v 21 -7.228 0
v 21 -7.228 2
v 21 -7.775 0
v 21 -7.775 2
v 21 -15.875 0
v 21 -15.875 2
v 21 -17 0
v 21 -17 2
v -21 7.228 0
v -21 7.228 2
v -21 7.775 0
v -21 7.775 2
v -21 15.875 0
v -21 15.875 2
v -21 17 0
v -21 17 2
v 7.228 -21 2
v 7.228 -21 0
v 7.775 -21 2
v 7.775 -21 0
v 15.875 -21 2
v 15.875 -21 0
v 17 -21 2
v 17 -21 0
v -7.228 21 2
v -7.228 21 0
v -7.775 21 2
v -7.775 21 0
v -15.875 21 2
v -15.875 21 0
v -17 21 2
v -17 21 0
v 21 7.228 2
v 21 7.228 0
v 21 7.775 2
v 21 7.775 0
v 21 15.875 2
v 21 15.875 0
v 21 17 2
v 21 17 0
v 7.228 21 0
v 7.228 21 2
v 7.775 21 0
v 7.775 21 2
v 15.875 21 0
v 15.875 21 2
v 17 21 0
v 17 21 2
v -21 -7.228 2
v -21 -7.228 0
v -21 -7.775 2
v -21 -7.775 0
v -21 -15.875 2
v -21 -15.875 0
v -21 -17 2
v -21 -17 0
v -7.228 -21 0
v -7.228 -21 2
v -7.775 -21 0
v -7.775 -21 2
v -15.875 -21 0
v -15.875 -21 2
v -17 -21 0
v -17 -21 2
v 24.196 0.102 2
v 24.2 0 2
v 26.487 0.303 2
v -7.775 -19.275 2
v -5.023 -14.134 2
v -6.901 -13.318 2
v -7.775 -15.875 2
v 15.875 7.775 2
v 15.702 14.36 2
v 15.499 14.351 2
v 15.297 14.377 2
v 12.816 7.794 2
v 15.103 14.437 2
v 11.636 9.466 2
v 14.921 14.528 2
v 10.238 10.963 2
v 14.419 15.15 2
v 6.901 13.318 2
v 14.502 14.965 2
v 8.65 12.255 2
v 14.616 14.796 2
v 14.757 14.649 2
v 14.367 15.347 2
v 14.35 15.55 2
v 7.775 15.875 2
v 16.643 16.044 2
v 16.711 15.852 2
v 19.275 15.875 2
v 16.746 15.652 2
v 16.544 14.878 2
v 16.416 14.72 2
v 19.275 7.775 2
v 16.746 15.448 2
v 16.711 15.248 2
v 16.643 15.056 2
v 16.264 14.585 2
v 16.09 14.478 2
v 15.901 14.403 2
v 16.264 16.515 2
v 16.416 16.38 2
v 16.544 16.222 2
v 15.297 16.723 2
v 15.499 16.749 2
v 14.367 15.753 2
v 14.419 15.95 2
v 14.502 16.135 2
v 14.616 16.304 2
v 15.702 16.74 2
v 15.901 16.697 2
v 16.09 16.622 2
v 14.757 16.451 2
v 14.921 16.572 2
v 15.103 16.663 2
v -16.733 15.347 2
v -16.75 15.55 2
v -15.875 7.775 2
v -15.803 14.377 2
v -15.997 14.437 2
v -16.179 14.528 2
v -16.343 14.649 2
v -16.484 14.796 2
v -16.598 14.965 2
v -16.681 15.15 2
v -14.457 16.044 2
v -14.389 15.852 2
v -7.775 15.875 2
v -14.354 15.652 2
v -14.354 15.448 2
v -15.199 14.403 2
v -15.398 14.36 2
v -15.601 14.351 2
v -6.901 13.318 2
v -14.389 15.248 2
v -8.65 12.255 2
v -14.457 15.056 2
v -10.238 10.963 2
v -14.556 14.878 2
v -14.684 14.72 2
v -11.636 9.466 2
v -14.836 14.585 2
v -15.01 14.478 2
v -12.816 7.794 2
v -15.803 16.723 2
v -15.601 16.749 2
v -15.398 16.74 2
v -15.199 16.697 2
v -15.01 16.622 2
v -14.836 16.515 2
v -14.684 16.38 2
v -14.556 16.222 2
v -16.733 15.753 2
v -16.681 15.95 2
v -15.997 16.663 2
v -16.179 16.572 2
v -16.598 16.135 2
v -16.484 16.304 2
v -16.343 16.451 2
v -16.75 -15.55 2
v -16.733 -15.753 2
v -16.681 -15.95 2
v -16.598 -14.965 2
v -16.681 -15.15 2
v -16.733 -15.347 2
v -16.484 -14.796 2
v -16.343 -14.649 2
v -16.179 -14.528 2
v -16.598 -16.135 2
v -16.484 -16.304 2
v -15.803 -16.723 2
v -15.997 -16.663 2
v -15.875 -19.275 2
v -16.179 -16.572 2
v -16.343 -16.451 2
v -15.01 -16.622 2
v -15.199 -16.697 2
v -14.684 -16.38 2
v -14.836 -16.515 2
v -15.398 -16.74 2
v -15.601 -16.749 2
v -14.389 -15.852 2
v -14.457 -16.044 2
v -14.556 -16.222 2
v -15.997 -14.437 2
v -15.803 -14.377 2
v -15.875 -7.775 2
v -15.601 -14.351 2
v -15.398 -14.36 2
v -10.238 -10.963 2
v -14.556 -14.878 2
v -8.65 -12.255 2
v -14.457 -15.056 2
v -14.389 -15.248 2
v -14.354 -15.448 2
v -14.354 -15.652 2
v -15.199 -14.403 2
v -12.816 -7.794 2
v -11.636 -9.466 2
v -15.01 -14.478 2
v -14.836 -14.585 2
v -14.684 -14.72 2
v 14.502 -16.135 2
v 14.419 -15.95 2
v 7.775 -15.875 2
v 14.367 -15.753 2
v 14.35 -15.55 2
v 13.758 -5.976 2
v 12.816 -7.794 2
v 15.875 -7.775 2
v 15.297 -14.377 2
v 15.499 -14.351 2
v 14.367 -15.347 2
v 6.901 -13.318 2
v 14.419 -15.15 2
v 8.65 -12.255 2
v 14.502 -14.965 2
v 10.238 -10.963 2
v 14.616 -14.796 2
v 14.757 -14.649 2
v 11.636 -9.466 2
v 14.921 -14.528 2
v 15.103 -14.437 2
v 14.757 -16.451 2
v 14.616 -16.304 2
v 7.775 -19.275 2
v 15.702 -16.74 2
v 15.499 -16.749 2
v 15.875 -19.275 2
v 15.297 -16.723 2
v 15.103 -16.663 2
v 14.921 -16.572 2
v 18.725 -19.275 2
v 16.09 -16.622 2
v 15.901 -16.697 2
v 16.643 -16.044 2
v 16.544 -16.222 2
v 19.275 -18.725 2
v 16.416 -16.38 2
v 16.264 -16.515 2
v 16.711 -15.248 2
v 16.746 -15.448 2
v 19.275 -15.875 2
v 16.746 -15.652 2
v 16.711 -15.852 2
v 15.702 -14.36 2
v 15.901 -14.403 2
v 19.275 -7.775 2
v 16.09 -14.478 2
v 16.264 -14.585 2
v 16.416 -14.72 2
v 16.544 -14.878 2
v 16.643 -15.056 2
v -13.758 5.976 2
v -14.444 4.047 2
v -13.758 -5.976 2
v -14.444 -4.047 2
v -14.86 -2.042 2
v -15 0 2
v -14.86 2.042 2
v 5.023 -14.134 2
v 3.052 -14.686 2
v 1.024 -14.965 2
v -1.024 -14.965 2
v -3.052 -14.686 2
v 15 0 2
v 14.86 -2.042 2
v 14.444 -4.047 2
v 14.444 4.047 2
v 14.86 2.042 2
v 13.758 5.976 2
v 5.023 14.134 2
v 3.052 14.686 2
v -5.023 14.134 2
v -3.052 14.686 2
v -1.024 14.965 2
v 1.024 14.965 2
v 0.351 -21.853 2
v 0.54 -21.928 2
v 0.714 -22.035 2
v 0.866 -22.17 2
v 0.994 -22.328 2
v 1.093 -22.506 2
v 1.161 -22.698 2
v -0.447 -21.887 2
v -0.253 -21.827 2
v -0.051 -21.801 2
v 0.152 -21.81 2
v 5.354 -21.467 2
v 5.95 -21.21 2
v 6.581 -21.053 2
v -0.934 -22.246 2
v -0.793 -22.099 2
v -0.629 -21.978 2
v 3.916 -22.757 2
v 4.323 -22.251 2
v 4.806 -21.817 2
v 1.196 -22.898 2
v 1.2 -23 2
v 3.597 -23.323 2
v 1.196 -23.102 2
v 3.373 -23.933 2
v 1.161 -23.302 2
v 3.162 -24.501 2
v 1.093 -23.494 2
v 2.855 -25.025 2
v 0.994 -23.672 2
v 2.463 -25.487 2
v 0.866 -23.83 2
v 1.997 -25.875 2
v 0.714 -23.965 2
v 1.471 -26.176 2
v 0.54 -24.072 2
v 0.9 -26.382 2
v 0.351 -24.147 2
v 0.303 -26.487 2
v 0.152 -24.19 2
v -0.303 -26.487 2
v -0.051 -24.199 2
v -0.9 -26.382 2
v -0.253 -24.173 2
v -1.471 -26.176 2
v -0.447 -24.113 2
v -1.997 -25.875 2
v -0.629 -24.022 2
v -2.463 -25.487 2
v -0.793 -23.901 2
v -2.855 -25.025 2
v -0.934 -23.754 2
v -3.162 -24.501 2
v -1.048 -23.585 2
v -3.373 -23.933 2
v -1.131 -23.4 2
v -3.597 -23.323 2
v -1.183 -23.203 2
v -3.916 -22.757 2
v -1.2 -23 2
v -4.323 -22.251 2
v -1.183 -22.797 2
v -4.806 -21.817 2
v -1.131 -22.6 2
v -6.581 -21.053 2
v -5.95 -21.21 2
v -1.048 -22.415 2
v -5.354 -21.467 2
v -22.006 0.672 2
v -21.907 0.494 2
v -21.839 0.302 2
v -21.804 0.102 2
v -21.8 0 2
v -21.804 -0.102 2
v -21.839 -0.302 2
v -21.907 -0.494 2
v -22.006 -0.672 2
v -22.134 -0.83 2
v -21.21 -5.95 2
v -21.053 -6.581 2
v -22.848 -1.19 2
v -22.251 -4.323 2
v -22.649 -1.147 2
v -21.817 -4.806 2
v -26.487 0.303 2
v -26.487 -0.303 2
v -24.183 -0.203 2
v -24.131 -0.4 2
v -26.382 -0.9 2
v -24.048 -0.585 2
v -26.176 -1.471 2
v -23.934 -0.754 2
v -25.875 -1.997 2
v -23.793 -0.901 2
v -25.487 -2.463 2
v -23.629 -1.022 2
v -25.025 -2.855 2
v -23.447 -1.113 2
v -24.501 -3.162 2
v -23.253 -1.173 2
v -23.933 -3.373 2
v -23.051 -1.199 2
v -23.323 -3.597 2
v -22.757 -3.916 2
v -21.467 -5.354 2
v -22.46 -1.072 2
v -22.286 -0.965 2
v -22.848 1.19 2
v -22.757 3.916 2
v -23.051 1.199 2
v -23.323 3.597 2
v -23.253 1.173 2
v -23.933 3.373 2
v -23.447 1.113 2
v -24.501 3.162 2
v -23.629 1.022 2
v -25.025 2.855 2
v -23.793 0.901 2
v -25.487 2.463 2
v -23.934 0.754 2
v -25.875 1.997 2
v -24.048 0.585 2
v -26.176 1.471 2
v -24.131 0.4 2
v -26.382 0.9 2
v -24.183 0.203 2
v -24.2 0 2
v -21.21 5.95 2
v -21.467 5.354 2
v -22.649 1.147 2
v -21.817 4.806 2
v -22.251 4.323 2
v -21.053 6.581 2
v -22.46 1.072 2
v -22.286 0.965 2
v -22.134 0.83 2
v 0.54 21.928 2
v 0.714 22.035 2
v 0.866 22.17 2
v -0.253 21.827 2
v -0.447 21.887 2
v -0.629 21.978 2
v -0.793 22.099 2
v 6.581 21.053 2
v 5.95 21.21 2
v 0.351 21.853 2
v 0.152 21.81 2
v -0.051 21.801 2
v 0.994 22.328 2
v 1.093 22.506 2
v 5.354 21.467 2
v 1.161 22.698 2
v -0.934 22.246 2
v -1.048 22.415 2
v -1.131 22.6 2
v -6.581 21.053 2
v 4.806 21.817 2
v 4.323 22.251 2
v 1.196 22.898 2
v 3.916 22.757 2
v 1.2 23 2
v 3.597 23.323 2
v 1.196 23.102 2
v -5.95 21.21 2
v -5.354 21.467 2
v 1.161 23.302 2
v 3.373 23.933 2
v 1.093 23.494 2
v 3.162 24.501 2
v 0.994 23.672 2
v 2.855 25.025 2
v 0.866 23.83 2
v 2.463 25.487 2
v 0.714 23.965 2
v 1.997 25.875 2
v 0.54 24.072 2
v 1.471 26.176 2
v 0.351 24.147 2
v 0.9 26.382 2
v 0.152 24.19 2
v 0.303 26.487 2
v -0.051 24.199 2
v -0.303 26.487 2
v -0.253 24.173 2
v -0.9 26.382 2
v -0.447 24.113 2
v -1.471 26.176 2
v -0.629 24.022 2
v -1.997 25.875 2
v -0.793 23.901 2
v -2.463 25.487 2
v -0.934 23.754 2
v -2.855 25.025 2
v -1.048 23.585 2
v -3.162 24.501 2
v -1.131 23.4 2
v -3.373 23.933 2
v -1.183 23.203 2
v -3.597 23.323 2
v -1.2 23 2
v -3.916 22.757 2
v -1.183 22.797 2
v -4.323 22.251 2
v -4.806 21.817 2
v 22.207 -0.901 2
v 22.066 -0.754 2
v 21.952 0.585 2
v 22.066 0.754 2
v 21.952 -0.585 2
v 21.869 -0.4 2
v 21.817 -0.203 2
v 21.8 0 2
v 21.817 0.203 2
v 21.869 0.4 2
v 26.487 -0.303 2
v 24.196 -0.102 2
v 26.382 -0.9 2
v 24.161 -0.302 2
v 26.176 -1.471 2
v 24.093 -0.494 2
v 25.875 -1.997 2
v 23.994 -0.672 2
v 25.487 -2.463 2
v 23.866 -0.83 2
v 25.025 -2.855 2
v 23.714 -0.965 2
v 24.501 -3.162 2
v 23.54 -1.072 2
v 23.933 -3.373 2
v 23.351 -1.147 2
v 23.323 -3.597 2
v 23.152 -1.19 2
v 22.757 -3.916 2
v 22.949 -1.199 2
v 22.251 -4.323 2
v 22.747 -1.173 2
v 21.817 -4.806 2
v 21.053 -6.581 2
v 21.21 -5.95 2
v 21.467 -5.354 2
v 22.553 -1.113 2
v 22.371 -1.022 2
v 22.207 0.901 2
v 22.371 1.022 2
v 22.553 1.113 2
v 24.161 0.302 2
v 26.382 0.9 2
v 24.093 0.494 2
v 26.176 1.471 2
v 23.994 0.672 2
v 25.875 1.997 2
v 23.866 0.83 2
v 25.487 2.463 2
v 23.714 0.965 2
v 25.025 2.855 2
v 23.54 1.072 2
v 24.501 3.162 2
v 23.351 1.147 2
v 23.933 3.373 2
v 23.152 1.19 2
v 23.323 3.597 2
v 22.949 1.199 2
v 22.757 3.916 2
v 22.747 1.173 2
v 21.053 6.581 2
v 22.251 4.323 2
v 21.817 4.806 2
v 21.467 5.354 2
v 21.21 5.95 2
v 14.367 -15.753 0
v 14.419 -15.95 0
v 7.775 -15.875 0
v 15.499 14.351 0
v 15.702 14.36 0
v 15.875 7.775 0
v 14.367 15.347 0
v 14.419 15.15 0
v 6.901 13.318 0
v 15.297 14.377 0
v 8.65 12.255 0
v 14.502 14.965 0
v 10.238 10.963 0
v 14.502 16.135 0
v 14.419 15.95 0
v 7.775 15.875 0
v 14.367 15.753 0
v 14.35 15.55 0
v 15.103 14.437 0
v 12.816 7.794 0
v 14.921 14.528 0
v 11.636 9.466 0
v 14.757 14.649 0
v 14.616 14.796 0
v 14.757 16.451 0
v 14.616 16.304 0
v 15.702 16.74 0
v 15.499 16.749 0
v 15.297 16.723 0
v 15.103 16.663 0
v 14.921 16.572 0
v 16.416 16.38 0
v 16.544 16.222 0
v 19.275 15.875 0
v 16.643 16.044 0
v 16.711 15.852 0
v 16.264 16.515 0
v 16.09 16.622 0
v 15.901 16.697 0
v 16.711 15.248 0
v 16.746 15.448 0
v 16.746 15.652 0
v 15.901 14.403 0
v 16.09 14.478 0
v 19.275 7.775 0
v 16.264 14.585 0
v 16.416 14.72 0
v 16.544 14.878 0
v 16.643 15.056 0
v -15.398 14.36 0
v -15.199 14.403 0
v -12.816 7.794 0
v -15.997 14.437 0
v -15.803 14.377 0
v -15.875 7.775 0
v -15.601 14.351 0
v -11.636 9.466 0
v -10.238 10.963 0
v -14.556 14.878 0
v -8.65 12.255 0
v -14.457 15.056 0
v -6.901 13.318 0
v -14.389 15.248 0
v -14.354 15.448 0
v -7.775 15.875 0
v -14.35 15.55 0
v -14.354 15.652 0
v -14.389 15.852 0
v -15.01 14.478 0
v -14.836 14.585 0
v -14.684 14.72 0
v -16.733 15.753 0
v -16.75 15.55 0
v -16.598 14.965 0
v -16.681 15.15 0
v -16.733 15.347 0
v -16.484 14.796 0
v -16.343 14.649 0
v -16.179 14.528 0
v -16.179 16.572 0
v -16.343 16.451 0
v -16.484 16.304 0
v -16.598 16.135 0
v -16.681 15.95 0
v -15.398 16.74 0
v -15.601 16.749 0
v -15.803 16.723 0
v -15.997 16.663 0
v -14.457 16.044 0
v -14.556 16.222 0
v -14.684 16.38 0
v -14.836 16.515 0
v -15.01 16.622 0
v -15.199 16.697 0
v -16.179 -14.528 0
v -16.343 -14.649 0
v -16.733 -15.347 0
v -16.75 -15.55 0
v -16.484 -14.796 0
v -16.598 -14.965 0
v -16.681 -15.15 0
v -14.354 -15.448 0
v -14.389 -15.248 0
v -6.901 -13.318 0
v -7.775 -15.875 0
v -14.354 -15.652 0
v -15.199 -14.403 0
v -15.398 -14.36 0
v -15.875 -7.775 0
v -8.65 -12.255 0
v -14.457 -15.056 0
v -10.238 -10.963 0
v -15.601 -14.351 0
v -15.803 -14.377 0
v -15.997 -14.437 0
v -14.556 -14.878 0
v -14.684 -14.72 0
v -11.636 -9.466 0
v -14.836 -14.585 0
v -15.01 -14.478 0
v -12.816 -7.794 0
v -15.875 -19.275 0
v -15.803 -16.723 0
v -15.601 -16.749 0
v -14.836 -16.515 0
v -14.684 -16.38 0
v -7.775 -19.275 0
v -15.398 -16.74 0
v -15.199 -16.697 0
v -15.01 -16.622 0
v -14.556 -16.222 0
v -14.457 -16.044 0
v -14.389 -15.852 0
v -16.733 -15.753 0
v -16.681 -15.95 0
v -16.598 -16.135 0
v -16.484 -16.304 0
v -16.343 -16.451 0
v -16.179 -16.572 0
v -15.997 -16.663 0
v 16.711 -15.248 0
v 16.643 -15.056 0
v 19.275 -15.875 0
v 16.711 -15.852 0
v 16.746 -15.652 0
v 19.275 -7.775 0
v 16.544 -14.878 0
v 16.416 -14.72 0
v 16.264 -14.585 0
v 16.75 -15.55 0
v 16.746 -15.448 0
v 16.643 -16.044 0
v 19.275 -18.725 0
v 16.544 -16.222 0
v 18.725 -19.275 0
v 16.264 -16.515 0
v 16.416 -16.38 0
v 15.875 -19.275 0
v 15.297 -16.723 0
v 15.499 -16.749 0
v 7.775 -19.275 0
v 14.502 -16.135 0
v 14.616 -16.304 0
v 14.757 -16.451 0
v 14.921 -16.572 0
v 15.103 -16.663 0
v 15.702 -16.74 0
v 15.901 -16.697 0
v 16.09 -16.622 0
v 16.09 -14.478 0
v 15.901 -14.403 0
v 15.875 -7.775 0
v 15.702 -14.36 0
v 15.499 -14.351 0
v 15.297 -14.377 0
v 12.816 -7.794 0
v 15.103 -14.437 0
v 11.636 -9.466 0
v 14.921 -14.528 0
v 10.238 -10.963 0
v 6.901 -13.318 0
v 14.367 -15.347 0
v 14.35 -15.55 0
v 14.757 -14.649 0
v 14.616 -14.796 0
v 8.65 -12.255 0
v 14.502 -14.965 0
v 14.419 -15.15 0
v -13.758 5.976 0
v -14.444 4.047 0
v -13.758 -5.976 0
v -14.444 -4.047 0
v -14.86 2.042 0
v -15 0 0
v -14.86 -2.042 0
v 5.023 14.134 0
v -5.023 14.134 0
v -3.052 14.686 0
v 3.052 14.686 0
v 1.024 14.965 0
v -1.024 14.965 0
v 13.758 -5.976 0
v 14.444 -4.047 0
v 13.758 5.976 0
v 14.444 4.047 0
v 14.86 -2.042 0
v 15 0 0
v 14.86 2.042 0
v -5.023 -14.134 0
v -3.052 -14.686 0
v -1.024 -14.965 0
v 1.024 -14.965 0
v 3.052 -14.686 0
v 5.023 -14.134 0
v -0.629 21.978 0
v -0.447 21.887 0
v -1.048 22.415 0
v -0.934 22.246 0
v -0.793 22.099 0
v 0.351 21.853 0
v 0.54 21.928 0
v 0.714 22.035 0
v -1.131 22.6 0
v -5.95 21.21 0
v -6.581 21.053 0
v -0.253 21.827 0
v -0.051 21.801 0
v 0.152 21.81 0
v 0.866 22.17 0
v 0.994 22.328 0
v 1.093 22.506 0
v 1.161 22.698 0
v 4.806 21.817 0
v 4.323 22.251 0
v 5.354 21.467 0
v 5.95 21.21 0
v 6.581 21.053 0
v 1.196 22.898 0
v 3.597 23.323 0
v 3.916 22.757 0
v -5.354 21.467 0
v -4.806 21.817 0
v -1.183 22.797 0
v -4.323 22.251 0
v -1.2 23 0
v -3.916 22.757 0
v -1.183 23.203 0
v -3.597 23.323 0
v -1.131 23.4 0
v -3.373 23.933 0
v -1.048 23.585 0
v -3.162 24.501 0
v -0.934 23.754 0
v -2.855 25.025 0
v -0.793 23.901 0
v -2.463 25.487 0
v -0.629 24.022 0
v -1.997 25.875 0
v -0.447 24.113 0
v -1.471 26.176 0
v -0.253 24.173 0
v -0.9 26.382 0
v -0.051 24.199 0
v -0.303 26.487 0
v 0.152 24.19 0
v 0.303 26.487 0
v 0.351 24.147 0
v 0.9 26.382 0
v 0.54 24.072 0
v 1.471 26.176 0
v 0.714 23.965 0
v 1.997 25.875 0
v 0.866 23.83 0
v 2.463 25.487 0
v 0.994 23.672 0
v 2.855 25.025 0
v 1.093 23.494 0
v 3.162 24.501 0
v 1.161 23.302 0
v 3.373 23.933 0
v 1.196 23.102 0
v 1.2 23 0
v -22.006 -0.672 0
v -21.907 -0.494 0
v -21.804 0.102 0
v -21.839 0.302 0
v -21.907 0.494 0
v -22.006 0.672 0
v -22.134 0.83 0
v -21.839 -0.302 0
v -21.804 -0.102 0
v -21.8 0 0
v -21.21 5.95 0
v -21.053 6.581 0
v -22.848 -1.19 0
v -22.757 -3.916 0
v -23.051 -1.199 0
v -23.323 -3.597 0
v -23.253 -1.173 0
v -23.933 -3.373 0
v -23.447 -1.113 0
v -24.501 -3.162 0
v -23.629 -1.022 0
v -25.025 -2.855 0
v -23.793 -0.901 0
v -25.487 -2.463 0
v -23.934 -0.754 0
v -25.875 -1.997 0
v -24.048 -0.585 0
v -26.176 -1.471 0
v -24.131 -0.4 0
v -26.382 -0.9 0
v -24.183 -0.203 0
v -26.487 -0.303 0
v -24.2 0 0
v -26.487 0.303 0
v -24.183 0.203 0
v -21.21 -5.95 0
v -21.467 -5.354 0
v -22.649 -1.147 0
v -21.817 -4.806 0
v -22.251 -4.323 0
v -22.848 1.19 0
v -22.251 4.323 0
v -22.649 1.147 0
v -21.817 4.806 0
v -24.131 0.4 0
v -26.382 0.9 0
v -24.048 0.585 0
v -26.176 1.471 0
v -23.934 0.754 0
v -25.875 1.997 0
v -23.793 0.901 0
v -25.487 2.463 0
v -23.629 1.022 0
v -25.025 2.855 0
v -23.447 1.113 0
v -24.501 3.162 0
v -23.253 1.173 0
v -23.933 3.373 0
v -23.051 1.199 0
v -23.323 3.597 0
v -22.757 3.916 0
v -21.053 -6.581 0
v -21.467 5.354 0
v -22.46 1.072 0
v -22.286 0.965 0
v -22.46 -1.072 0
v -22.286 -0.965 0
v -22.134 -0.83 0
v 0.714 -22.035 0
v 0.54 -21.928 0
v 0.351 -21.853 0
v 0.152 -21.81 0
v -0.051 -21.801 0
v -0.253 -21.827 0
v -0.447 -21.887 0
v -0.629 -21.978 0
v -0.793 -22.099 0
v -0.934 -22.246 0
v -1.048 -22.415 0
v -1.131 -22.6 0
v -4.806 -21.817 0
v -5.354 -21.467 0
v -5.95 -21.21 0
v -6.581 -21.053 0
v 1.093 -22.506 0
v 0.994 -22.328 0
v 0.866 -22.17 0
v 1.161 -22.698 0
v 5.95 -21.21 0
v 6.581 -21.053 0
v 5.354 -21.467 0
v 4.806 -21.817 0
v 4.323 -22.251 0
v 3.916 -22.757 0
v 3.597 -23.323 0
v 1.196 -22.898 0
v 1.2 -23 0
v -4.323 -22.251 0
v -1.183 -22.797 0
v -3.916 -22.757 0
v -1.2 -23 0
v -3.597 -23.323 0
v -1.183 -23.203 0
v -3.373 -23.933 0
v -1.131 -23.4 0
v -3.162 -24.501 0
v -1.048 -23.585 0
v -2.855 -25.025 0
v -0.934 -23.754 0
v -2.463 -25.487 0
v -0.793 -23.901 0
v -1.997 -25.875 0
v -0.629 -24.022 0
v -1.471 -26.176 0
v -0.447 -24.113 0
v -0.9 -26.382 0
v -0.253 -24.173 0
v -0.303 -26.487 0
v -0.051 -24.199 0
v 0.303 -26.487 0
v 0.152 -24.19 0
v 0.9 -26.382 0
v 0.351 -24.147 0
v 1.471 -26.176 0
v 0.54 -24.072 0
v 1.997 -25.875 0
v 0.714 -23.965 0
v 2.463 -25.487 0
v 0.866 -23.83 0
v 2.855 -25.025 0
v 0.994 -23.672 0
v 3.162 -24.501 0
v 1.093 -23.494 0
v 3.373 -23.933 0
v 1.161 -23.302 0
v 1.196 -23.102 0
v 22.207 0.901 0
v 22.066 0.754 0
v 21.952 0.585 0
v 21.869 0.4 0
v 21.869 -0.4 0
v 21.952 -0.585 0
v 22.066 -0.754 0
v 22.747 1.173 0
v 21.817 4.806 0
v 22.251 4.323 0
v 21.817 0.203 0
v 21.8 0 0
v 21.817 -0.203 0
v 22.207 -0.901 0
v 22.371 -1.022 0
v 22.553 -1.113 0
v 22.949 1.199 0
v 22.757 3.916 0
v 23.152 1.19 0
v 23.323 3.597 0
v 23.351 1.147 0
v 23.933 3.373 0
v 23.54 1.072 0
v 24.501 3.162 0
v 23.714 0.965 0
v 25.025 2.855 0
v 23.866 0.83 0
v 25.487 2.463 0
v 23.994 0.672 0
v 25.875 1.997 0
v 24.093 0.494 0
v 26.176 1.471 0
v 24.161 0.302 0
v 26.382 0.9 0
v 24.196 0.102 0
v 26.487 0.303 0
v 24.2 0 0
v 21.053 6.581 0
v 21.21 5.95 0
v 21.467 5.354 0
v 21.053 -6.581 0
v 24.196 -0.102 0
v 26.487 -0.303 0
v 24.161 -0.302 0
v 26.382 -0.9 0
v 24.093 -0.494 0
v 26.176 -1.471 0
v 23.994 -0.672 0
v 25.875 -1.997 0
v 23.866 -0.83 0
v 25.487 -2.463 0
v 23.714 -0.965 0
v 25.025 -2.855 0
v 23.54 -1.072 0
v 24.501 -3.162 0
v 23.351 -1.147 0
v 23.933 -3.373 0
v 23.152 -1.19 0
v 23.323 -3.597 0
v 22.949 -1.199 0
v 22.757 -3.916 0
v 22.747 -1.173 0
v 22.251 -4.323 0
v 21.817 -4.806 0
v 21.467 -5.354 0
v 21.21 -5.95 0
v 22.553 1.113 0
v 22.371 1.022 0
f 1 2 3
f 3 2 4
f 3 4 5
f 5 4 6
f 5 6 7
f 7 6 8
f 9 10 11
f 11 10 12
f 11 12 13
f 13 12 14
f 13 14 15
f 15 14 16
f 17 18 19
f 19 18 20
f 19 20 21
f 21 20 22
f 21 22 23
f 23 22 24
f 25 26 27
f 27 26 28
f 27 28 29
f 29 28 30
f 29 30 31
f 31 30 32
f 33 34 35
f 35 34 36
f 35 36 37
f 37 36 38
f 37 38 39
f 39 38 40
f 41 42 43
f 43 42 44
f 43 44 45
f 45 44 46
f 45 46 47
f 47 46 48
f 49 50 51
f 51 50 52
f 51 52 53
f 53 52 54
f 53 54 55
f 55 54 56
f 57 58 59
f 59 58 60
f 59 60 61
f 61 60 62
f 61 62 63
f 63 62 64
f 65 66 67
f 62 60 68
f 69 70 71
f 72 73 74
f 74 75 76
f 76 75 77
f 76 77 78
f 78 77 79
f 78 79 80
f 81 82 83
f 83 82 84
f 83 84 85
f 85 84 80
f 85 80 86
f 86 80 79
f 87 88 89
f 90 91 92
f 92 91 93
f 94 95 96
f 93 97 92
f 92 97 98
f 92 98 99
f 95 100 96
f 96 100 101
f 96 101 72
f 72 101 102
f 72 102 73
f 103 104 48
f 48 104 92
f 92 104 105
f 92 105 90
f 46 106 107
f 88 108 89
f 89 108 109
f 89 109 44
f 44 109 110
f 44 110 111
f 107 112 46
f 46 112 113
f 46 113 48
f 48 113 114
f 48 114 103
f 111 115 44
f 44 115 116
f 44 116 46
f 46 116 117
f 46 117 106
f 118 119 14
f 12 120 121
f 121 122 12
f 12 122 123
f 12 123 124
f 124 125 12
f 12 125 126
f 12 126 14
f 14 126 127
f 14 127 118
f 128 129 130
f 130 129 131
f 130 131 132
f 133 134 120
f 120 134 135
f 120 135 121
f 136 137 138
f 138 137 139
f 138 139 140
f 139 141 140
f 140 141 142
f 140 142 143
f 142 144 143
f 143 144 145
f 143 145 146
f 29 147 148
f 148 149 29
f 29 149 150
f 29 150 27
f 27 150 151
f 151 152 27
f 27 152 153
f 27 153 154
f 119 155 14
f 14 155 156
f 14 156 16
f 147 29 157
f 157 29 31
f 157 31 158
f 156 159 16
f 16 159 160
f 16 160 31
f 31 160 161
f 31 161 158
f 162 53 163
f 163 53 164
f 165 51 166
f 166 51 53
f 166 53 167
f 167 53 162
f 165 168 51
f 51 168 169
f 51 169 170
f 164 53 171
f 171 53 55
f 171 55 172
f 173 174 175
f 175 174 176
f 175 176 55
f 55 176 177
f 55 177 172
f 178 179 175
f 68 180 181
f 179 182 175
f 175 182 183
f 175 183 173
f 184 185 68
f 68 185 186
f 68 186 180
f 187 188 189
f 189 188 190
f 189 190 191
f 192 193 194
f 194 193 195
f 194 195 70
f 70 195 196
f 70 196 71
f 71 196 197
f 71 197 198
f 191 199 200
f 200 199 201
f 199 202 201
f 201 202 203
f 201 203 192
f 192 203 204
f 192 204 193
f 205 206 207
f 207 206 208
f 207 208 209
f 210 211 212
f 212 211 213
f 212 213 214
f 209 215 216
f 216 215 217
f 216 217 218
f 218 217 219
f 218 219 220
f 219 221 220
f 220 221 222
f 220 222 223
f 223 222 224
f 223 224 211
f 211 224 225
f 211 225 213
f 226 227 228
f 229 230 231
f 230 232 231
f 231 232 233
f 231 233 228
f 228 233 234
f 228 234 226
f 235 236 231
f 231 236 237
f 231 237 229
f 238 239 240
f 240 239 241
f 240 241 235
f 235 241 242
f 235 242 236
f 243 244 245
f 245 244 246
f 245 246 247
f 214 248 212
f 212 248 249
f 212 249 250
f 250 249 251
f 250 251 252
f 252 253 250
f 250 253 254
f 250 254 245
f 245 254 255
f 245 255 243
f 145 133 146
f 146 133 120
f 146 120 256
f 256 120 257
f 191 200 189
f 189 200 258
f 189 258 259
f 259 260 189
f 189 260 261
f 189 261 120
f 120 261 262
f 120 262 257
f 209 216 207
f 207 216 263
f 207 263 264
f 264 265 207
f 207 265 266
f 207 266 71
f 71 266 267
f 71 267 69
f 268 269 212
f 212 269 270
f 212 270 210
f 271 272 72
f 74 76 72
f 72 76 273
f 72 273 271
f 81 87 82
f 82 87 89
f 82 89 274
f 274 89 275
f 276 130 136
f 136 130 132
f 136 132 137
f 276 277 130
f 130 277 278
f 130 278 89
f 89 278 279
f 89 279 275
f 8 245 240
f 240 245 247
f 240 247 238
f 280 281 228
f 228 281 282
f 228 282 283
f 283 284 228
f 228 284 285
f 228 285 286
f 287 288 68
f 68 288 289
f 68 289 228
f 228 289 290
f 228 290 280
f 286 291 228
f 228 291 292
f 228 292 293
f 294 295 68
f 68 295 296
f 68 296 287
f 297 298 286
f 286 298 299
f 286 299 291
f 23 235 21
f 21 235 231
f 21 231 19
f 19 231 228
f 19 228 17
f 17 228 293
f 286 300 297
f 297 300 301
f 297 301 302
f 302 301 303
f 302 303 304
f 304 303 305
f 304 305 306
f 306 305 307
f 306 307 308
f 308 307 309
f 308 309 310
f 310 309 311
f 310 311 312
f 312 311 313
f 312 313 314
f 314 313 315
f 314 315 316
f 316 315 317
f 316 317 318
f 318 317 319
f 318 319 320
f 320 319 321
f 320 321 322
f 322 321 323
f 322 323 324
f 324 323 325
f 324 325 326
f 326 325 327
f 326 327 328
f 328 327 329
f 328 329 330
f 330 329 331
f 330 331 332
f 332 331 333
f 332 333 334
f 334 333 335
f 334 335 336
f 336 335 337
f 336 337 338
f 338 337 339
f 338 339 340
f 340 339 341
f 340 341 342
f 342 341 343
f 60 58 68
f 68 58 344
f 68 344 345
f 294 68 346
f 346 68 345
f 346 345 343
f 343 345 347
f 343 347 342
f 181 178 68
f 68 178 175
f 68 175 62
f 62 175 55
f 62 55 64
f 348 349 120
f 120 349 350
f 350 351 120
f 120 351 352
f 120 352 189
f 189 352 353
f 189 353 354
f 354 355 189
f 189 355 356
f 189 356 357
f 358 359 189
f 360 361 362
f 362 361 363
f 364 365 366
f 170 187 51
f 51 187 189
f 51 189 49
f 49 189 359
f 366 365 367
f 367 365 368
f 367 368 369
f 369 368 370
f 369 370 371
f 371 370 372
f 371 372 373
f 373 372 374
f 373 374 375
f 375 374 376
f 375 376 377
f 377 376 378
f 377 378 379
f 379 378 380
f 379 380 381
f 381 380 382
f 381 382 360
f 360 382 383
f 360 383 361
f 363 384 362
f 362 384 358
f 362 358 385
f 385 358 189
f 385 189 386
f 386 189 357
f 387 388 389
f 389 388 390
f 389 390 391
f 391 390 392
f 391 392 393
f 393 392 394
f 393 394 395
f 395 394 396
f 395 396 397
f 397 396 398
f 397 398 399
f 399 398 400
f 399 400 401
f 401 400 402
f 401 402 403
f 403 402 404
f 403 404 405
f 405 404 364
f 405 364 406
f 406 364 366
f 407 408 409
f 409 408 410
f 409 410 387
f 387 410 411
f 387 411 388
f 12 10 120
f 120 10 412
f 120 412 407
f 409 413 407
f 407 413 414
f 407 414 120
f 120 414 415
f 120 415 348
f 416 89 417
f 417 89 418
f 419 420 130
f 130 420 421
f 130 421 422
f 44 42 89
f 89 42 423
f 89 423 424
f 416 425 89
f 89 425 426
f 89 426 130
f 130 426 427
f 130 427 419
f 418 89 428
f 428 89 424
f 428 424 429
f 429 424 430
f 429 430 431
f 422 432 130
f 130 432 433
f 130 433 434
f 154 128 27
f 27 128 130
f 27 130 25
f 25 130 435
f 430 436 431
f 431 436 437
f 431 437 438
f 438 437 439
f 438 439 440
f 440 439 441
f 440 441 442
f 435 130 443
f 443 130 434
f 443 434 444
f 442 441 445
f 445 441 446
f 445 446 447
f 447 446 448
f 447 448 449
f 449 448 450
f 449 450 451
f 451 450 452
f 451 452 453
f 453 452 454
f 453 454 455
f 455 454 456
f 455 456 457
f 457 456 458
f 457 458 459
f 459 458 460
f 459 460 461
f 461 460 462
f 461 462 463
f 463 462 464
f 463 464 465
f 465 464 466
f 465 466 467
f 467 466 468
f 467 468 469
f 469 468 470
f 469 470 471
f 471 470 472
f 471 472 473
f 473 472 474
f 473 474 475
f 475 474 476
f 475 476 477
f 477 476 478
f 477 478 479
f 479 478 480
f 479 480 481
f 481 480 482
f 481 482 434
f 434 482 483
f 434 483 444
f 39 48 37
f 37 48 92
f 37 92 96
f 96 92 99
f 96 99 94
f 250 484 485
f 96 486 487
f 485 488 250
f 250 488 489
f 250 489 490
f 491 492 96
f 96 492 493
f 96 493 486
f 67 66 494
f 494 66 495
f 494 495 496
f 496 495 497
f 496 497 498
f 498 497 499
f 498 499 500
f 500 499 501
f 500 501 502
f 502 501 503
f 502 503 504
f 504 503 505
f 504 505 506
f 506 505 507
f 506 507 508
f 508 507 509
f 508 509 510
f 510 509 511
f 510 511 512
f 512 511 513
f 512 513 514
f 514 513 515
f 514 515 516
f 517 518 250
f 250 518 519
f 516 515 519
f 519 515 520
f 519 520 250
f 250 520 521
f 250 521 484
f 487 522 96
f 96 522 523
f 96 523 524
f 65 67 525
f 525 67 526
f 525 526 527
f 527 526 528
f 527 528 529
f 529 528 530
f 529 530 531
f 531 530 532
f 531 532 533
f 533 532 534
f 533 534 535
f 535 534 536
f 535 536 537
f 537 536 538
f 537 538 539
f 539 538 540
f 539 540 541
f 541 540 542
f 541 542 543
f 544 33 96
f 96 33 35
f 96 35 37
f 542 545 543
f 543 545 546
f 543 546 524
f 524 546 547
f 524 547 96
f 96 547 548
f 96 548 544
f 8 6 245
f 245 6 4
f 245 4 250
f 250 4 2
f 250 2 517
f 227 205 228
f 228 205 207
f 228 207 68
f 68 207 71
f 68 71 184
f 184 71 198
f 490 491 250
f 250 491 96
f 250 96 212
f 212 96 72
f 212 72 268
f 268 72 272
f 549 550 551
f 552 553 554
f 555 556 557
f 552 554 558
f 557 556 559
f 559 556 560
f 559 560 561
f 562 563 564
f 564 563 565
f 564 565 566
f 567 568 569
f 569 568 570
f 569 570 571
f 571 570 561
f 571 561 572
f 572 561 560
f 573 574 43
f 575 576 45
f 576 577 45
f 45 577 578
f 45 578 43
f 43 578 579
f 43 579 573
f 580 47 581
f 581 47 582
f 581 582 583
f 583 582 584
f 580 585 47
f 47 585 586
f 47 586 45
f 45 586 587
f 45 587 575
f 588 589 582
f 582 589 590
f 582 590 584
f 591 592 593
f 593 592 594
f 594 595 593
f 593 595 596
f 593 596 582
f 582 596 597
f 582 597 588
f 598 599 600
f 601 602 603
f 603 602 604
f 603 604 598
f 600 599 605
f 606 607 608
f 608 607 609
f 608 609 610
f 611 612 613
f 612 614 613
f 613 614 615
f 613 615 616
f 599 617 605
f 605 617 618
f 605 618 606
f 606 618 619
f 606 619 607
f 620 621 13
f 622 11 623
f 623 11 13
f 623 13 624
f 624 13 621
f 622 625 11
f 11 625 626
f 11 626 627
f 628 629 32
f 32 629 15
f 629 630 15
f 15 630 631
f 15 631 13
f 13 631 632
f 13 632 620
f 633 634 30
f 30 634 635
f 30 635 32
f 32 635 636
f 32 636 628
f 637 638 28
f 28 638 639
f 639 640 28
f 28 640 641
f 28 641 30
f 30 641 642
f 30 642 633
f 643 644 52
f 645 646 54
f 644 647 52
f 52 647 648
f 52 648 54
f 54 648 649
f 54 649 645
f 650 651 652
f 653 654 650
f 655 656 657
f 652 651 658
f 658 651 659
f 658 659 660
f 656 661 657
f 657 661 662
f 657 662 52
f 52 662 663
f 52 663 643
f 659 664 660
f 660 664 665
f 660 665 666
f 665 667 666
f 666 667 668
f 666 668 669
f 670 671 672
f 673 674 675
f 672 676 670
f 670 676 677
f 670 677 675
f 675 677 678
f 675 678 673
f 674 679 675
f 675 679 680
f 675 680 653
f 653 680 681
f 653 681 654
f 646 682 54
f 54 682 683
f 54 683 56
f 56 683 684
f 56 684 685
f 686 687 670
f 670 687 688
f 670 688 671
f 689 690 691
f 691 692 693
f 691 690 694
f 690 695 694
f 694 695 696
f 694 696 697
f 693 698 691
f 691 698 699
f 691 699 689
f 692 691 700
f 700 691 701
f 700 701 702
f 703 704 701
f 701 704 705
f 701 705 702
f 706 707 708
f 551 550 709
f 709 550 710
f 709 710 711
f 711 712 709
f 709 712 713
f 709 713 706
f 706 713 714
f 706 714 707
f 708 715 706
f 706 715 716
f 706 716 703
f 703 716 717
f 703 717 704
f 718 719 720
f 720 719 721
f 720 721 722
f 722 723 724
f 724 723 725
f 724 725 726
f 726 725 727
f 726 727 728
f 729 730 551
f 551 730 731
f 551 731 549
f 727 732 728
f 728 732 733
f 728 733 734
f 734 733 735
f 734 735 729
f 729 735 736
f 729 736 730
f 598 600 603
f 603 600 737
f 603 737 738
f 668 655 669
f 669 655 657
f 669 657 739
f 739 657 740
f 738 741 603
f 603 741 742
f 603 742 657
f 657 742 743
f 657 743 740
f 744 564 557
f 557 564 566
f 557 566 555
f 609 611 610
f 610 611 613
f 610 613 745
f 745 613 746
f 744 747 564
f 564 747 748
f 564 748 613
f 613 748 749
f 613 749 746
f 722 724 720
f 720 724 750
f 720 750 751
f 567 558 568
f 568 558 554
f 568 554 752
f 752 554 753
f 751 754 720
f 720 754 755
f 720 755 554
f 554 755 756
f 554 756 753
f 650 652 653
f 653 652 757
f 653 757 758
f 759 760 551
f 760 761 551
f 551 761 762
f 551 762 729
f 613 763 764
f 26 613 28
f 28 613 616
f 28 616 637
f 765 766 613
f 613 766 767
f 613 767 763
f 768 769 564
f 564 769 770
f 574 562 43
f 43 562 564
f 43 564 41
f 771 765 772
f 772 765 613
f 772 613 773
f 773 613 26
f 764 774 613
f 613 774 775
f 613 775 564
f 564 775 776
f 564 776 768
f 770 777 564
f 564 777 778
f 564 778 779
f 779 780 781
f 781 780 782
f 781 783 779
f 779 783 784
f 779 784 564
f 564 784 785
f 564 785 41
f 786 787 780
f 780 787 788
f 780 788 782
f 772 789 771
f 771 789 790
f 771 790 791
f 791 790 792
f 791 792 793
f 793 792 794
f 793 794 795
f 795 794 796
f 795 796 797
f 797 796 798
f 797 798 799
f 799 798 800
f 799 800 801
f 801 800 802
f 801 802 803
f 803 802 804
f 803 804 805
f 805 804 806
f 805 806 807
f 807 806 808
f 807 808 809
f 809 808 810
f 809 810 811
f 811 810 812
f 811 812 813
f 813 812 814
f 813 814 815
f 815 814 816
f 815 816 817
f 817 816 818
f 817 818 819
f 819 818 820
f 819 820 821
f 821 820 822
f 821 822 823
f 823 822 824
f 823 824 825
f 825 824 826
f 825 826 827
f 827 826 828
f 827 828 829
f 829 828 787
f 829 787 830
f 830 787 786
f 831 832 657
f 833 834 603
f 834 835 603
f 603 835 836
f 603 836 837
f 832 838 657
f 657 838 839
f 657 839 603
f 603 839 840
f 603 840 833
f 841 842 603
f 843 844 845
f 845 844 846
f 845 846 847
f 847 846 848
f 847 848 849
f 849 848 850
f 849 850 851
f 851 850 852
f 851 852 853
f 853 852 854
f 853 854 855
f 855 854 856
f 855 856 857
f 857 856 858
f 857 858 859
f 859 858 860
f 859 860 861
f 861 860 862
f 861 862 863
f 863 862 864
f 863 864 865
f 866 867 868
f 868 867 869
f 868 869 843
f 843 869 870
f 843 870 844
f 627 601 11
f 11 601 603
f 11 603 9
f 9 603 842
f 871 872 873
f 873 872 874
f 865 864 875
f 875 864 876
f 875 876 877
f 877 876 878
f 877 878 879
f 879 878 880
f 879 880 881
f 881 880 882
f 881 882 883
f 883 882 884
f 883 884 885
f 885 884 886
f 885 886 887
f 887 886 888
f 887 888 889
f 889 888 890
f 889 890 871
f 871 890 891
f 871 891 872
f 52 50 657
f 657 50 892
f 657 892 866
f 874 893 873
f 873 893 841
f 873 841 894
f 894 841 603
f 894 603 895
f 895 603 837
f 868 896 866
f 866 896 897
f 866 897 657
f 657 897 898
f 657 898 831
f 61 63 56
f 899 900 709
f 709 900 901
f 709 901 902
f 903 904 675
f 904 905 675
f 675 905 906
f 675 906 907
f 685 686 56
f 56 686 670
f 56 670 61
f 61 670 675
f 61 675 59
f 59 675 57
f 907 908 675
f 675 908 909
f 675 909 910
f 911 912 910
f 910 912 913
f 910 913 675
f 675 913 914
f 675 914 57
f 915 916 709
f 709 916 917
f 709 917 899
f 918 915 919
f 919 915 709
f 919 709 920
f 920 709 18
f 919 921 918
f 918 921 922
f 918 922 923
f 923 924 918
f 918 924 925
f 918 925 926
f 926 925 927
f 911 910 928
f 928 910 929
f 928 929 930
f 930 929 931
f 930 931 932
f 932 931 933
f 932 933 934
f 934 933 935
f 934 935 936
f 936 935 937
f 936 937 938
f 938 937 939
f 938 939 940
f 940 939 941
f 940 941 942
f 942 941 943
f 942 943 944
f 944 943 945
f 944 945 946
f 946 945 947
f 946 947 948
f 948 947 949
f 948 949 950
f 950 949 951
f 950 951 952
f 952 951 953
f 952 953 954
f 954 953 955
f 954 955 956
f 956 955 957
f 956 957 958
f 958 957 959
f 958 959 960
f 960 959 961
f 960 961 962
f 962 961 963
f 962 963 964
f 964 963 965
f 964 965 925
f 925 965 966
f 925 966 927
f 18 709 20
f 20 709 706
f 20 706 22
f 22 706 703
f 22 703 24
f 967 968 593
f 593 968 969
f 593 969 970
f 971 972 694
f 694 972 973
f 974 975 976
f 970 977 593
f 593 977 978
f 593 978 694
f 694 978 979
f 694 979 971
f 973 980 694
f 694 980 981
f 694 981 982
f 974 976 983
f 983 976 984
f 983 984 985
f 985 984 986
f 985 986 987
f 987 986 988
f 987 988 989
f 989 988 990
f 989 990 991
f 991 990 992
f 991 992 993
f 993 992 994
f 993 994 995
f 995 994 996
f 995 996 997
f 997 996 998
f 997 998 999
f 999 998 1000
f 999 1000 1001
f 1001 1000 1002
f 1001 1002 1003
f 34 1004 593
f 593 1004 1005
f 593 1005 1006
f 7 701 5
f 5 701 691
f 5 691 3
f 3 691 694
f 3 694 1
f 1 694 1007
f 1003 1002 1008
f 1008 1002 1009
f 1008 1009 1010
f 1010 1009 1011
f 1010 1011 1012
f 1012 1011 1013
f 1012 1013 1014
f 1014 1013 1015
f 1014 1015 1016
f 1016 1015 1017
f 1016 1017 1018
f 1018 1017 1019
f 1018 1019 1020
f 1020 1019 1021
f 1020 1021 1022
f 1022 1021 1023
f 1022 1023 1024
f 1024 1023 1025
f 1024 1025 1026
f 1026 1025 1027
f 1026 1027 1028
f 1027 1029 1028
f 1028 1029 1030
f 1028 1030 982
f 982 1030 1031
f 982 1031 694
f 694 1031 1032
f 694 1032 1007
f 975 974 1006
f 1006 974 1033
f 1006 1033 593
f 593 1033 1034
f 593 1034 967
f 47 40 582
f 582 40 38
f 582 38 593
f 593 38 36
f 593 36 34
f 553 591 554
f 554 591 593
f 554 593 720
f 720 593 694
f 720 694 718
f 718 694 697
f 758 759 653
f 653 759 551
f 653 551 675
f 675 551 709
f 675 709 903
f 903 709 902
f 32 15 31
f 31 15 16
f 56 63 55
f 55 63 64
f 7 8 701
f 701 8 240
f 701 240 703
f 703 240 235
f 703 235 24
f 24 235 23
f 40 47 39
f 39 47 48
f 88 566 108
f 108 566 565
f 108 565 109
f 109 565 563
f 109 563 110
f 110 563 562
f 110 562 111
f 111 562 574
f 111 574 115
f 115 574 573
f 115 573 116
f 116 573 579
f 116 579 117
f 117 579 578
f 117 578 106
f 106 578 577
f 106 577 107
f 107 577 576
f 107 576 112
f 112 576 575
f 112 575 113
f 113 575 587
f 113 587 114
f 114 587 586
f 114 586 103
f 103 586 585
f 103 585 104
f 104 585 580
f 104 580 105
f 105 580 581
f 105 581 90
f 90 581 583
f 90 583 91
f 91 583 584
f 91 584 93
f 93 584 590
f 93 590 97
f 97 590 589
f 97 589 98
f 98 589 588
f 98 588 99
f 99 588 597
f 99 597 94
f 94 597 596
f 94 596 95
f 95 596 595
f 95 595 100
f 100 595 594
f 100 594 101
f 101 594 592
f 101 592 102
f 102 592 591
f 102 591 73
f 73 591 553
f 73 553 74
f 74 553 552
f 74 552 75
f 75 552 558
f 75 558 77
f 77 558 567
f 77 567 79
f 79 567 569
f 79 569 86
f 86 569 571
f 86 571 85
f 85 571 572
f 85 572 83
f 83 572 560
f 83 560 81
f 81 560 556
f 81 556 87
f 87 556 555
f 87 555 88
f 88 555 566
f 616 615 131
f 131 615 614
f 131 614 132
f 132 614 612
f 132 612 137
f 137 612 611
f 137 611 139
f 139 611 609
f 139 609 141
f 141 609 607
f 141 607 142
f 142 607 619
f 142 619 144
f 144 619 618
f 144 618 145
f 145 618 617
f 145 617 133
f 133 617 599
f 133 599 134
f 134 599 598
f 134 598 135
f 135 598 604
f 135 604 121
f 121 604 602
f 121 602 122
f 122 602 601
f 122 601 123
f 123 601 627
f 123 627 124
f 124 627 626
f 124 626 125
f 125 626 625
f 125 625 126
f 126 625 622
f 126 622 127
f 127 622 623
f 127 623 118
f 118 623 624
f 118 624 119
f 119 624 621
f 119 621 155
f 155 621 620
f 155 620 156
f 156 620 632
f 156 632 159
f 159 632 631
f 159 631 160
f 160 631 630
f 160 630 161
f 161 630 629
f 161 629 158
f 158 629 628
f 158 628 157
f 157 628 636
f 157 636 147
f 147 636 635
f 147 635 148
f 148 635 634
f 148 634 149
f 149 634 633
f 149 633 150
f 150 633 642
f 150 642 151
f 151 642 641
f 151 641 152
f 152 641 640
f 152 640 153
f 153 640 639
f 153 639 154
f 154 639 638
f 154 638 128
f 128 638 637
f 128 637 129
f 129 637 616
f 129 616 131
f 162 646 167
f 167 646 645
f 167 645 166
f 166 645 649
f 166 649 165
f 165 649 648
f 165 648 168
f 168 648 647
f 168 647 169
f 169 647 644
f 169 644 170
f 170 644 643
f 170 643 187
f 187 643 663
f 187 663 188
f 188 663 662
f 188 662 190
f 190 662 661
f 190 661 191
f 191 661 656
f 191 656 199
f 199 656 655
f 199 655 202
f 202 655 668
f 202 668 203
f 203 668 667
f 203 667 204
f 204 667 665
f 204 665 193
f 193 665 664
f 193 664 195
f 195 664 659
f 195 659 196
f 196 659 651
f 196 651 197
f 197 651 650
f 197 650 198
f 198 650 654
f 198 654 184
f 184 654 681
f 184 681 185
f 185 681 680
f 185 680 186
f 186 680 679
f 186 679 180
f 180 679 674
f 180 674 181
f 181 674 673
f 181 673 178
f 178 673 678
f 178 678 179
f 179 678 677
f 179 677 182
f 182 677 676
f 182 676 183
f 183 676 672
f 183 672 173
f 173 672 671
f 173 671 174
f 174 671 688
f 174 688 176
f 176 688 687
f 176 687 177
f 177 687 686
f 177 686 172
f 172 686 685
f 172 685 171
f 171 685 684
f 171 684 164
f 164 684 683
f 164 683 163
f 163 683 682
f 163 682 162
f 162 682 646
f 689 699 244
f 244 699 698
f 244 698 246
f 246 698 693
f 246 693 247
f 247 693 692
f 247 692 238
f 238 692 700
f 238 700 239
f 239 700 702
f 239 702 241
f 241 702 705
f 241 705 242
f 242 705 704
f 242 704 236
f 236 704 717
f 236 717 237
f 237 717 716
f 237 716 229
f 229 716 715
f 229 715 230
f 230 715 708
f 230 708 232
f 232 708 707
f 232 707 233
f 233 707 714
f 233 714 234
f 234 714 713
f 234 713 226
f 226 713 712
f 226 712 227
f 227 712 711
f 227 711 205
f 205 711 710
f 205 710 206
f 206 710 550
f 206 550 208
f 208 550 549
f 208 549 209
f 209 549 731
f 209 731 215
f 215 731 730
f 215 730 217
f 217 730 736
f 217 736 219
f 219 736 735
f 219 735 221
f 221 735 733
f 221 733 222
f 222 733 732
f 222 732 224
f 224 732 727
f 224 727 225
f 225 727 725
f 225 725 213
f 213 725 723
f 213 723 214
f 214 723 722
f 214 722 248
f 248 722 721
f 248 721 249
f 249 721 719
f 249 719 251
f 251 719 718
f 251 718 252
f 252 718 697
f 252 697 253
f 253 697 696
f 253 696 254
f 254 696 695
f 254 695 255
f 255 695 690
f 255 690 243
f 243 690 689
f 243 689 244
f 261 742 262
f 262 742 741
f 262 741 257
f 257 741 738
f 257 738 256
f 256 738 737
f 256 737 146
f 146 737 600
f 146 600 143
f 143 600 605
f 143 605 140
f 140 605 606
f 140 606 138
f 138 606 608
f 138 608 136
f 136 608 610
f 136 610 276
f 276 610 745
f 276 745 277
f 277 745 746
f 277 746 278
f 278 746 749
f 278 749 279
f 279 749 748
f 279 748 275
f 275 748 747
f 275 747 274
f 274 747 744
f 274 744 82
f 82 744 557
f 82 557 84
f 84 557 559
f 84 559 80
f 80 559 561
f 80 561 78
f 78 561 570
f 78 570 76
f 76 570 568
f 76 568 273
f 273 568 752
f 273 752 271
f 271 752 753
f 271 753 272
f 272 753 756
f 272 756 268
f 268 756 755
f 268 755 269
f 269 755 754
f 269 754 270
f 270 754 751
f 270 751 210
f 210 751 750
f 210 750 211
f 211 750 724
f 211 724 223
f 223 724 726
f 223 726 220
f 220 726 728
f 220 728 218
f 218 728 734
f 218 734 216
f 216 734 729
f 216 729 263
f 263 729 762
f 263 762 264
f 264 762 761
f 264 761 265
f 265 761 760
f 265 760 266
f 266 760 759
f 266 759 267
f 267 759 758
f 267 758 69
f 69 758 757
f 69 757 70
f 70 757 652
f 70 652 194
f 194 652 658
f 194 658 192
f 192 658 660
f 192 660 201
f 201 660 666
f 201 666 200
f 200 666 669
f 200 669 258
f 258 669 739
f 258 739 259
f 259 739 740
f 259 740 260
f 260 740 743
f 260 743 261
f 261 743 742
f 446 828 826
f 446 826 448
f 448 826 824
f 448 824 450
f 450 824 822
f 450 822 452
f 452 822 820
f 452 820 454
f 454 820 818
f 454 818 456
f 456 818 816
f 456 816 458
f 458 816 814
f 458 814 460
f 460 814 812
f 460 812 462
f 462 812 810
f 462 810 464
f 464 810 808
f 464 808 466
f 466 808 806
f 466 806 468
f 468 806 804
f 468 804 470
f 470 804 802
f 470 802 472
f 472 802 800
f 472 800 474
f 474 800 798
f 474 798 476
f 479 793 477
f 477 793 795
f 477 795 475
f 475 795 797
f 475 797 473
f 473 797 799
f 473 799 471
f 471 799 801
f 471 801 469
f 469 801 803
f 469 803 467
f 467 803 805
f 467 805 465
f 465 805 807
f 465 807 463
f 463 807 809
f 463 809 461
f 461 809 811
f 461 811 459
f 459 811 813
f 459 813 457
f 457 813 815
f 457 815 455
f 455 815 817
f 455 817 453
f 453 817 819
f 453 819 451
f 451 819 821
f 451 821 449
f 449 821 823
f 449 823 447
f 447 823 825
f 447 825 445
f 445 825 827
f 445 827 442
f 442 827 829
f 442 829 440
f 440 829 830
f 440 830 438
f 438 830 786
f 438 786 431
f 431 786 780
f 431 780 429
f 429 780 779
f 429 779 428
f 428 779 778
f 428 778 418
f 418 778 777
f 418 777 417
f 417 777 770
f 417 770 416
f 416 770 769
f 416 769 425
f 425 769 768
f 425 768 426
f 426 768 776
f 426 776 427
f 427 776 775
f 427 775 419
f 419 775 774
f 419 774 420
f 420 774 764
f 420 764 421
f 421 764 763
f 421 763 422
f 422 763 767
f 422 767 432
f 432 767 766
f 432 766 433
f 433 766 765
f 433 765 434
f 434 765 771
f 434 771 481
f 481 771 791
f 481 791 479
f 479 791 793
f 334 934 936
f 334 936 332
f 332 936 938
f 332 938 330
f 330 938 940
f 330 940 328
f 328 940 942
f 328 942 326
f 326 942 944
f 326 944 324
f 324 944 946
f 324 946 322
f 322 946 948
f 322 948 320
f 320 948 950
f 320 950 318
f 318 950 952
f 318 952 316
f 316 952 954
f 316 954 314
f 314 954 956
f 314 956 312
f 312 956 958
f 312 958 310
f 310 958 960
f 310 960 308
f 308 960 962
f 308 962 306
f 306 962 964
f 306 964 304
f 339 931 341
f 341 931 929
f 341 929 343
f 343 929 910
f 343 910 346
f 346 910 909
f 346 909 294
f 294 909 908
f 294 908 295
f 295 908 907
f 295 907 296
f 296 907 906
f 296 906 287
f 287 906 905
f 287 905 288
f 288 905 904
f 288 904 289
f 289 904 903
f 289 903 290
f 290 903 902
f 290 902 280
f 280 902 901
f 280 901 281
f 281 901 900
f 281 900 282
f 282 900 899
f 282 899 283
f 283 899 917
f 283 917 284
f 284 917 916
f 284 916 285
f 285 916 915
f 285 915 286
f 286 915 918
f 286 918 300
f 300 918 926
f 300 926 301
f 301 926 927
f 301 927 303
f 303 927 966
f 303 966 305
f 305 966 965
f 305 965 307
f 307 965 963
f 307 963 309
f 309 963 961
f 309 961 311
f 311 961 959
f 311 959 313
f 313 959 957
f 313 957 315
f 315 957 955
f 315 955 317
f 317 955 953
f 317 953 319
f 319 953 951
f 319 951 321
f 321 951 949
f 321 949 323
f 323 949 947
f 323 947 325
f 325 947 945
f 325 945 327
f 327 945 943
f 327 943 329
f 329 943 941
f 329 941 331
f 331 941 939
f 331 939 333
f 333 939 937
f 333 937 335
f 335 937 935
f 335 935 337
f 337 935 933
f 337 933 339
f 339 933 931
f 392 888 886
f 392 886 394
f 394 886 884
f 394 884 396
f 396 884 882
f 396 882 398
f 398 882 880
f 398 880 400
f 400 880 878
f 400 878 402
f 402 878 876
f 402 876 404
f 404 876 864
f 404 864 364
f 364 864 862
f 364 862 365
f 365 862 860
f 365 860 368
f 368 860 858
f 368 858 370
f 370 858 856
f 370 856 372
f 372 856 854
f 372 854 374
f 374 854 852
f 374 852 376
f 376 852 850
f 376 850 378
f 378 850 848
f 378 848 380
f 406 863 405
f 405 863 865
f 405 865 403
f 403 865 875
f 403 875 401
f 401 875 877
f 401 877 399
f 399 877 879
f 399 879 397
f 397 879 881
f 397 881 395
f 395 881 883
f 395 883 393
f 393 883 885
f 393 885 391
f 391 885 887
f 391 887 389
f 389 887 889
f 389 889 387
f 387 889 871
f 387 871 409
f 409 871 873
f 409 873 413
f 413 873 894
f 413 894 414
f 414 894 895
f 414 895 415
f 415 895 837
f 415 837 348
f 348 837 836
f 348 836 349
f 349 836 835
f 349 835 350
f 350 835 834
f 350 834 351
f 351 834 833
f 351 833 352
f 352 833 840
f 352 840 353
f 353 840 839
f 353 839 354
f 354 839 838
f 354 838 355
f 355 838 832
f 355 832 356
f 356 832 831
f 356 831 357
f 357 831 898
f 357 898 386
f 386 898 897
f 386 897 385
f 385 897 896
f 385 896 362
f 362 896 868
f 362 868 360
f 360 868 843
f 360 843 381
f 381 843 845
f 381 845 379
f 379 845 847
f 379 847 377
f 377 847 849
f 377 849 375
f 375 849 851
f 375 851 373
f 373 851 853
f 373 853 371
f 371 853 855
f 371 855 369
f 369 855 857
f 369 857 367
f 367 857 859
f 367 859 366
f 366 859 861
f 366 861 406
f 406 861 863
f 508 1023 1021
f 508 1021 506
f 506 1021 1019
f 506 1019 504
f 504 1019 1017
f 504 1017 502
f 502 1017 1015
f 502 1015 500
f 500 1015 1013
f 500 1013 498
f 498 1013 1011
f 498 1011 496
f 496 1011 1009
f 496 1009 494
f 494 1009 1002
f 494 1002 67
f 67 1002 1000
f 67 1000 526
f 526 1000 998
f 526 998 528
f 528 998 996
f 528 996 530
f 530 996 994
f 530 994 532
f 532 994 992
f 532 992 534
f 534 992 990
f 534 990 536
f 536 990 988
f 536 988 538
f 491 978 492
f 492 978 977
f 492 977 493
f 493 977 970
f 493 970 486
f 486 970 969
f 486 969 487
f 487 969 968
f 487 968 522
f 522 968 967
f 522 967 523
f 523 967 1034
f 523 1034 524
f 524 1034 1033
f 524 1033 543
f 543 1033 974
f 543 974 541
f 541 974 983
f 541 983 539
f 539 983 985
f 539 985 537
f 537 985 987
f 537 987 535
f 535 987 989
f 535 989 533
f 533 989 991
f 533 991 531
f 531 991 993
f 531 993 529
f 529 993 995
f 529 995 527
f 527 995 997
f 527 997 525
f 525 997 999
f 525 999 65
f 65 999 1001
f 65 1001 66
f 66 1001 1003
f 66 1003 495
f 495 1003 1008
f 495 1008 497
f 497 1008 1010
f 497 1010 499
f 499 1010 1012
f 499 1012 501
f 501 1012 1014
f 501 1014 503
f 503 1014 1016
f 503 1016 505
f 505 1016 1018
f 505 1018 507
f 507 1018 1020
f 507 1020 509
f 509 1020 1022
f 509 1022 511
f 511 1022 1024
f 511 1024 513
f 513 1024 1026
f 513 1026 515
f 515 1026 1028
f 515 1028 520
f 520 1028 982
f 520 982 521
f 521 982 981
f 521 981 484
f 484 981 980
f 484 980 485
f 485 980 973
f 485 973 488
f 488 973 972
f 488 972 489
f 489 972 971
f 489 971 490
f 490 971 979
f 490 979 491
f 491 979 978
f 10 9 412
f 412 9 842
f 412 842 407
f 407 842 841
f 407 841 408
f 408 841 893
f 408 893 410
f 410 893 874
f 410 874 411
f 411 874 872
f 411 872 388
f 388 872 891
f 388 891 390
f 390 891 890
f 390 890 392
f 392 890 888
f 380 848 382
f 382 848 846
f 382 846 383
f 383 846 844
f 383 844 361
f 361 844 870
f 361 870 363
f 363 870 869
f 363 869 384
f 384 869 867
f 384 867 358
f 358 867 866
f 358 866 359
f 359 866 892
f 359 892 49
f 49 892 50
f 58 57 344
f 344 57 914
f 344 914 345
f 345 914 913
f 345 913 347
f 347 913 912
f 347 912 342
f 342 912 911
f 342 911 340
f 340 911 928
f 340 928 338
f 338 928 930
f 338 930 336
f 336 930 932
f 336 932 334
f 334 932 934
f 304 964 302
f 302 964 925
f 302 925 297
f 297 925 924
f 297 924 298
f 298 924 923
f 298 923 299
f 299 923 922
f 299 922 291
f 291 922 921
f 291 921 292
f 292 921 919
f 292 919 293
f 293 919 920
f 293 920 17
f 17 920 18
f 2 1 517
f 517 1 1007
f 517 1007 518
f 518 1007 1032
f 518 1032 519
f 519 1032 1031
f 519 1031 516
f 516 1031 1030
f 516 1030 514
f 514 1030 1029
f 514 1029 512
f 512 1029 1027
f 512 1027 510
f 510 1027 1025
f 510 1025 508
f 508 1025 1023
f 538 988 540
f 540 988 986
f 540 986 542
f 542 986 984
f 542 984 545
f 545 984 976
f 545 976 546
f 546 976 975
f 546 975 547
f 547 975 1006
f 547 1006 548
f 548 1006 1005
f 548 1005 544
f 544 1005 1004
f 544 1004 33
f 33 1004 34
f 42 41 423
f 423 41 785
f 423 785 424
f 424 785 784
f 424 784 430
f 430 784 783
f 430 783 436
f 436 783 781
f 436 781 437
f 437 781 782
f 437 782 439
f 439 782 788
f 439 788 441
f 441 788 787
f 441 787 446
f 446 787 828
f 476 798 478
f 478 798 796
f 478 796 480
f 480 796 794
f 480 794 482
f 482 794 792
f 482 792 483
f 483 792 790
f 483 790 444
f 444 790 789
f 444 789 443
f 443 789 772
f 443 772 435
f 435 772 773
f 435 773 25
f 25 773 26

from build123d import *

# Parameters (mm, degrees)
SKETCH_1_W          = 42
SKETCH_1_H          = 42
EXTRUDE_1_DEPTH     = 2
CHAMFER_1_SIZE      = 4
SKETCH_2_R          = 1.2
CUT_EXTRUDE_1_DEPTH = 2.5
SKETCH_3_R          = 15
CUT_EXTRUDE_2_DEPTH = 2.5
SKETCH_4_R          = 1.2
EXTRUDE_2_DEPTH     = 2
FILLET_1_R          = 4


with BuildPart() as part:
    # 草图1 → 凸台-拉伸1 (new body)
    with BuildSketch(Plane.XY):
        Rectangle(SKETCH_1_W, SKETCH_1_H)
    extrude(amount=EXTRUDE_1_DEPTH)

    # 倒角1
    chamfer_1_edges = [part.edges().sort_by_distance(p)[0] for p in [
        (21, -21, 1),
        (-21, -21, 1),
        (-21, 21, 1),
        (21, 21, 1),
    ]]
    chamfer(chamfer_1_edges, length=CHAMFER_1_SIZE)

    # 草图2 → 切除-拉伸1 (cut)
    with BuildSketch(Plane(origin=(0, 0, 0), x_dir=(-1, 0, 0), z_dir=(0, 0, -1))):
        with Locations((-15.55, 15.55)):
            Circle(SKETCH_2_R)
        with Locations((15.55, 15.55)):
            Circle(SKETCH_2_R)
        with Locations((15.55, -15.55)):
            Circle(SKETCH_2_R)
        with Locations((-15.55, -15.55)):
            Circle(SKETCH_2_R)
    extrude(amount=-CUT_EXTRUDE_1_DEPTH, mode=Mode.SUBTRACT)

    # 草图3 → 切除-拉伸2 (cut)
    with BuildSketch(Plane(origin=(0, 0, 0), x_dir=(-1, 0, 0), z_dir=(0, 0, -1))):
        Circle(SKETCH_3_R)
    extrude(amount=-CUT_EXTRUDE_2_DEPTH, mode=Mode.SUBTRACT)

    # 草图4 → 凸台-拉伸2 (add)
    with BuildSketch(Plane.XY):
        with BuildLine():
            Line((3.5, 23), (3.5, 19))
            Line((3.5, 19), (-3.5, 19))
            Line((-3.5, 19), (-3.5, 23))
            ThreePointArc((-3.5, 23), (0, 26.5), (3.5, 23))
        make_face()
        with Locations((0, 23)):
            Circle(SKETCH_4_R, mode=Mode.SUBTRACT)
        with BuildLine():
            ThreePointArc((3.5, -23), (0, -26.5), (-3.5, -23))
            Line((-3.5, -23), (-3.5, -19))
            Line((-3.5, -19), (3.5, -19))
            Line((3.5, -19), (3.5, -23))
        make_face()
        with Locations((0, -23)):
            Circle(SKETCH_4_R, mode=Mode.SUBTRACT)
        with BuildLine():
            ThreePointArc((-23, -3.5), (-26.5, 0), (-23, 3.5))
            Line((-23, 3.5), (-19, 3.5))
            Line((-19, 3.5), (-19, -3.5))
            Line((-19, -3.5), (-23, -3.5))
        make_face()
        with Locations((-23, 0)):
            Circle(SKETCH_4_R, mode=Mode.SUBTRACT)
        with BuildLine():
            Line((19, -3.5), (23, -3.5))
            ThreePointArc((23, -3.5), (26.5, 0), (23, 3.5))
            Line((23, 3.5), (19, 3.5))
            Line((19, 3.5), (19, -3.5))
        make_face()
        with Locations((23, 0)):
            Circle(SKETCH_4_R, mode=Mode.SUBTRACT)
    extrude(amount=EXTRUDE_2_DEPTH)

    # 圆角1
    fillet_1_edges = [part.edges().sort_by_distance(p)[0] for p in [
        (-21, 3.5, 1),
        (-21, -3.5, 1),
        (-3.5, -21, 1),
        (3.5, -21, 1),
        (21, -3.5, 1),
        (21, 3.5, 1),
        (3.5, 21, 1),
        (-3.5, 21, 1),
    ]]
    fillet(fillet_1_edges, radius=FILLET_1_R)


solid = part.part
